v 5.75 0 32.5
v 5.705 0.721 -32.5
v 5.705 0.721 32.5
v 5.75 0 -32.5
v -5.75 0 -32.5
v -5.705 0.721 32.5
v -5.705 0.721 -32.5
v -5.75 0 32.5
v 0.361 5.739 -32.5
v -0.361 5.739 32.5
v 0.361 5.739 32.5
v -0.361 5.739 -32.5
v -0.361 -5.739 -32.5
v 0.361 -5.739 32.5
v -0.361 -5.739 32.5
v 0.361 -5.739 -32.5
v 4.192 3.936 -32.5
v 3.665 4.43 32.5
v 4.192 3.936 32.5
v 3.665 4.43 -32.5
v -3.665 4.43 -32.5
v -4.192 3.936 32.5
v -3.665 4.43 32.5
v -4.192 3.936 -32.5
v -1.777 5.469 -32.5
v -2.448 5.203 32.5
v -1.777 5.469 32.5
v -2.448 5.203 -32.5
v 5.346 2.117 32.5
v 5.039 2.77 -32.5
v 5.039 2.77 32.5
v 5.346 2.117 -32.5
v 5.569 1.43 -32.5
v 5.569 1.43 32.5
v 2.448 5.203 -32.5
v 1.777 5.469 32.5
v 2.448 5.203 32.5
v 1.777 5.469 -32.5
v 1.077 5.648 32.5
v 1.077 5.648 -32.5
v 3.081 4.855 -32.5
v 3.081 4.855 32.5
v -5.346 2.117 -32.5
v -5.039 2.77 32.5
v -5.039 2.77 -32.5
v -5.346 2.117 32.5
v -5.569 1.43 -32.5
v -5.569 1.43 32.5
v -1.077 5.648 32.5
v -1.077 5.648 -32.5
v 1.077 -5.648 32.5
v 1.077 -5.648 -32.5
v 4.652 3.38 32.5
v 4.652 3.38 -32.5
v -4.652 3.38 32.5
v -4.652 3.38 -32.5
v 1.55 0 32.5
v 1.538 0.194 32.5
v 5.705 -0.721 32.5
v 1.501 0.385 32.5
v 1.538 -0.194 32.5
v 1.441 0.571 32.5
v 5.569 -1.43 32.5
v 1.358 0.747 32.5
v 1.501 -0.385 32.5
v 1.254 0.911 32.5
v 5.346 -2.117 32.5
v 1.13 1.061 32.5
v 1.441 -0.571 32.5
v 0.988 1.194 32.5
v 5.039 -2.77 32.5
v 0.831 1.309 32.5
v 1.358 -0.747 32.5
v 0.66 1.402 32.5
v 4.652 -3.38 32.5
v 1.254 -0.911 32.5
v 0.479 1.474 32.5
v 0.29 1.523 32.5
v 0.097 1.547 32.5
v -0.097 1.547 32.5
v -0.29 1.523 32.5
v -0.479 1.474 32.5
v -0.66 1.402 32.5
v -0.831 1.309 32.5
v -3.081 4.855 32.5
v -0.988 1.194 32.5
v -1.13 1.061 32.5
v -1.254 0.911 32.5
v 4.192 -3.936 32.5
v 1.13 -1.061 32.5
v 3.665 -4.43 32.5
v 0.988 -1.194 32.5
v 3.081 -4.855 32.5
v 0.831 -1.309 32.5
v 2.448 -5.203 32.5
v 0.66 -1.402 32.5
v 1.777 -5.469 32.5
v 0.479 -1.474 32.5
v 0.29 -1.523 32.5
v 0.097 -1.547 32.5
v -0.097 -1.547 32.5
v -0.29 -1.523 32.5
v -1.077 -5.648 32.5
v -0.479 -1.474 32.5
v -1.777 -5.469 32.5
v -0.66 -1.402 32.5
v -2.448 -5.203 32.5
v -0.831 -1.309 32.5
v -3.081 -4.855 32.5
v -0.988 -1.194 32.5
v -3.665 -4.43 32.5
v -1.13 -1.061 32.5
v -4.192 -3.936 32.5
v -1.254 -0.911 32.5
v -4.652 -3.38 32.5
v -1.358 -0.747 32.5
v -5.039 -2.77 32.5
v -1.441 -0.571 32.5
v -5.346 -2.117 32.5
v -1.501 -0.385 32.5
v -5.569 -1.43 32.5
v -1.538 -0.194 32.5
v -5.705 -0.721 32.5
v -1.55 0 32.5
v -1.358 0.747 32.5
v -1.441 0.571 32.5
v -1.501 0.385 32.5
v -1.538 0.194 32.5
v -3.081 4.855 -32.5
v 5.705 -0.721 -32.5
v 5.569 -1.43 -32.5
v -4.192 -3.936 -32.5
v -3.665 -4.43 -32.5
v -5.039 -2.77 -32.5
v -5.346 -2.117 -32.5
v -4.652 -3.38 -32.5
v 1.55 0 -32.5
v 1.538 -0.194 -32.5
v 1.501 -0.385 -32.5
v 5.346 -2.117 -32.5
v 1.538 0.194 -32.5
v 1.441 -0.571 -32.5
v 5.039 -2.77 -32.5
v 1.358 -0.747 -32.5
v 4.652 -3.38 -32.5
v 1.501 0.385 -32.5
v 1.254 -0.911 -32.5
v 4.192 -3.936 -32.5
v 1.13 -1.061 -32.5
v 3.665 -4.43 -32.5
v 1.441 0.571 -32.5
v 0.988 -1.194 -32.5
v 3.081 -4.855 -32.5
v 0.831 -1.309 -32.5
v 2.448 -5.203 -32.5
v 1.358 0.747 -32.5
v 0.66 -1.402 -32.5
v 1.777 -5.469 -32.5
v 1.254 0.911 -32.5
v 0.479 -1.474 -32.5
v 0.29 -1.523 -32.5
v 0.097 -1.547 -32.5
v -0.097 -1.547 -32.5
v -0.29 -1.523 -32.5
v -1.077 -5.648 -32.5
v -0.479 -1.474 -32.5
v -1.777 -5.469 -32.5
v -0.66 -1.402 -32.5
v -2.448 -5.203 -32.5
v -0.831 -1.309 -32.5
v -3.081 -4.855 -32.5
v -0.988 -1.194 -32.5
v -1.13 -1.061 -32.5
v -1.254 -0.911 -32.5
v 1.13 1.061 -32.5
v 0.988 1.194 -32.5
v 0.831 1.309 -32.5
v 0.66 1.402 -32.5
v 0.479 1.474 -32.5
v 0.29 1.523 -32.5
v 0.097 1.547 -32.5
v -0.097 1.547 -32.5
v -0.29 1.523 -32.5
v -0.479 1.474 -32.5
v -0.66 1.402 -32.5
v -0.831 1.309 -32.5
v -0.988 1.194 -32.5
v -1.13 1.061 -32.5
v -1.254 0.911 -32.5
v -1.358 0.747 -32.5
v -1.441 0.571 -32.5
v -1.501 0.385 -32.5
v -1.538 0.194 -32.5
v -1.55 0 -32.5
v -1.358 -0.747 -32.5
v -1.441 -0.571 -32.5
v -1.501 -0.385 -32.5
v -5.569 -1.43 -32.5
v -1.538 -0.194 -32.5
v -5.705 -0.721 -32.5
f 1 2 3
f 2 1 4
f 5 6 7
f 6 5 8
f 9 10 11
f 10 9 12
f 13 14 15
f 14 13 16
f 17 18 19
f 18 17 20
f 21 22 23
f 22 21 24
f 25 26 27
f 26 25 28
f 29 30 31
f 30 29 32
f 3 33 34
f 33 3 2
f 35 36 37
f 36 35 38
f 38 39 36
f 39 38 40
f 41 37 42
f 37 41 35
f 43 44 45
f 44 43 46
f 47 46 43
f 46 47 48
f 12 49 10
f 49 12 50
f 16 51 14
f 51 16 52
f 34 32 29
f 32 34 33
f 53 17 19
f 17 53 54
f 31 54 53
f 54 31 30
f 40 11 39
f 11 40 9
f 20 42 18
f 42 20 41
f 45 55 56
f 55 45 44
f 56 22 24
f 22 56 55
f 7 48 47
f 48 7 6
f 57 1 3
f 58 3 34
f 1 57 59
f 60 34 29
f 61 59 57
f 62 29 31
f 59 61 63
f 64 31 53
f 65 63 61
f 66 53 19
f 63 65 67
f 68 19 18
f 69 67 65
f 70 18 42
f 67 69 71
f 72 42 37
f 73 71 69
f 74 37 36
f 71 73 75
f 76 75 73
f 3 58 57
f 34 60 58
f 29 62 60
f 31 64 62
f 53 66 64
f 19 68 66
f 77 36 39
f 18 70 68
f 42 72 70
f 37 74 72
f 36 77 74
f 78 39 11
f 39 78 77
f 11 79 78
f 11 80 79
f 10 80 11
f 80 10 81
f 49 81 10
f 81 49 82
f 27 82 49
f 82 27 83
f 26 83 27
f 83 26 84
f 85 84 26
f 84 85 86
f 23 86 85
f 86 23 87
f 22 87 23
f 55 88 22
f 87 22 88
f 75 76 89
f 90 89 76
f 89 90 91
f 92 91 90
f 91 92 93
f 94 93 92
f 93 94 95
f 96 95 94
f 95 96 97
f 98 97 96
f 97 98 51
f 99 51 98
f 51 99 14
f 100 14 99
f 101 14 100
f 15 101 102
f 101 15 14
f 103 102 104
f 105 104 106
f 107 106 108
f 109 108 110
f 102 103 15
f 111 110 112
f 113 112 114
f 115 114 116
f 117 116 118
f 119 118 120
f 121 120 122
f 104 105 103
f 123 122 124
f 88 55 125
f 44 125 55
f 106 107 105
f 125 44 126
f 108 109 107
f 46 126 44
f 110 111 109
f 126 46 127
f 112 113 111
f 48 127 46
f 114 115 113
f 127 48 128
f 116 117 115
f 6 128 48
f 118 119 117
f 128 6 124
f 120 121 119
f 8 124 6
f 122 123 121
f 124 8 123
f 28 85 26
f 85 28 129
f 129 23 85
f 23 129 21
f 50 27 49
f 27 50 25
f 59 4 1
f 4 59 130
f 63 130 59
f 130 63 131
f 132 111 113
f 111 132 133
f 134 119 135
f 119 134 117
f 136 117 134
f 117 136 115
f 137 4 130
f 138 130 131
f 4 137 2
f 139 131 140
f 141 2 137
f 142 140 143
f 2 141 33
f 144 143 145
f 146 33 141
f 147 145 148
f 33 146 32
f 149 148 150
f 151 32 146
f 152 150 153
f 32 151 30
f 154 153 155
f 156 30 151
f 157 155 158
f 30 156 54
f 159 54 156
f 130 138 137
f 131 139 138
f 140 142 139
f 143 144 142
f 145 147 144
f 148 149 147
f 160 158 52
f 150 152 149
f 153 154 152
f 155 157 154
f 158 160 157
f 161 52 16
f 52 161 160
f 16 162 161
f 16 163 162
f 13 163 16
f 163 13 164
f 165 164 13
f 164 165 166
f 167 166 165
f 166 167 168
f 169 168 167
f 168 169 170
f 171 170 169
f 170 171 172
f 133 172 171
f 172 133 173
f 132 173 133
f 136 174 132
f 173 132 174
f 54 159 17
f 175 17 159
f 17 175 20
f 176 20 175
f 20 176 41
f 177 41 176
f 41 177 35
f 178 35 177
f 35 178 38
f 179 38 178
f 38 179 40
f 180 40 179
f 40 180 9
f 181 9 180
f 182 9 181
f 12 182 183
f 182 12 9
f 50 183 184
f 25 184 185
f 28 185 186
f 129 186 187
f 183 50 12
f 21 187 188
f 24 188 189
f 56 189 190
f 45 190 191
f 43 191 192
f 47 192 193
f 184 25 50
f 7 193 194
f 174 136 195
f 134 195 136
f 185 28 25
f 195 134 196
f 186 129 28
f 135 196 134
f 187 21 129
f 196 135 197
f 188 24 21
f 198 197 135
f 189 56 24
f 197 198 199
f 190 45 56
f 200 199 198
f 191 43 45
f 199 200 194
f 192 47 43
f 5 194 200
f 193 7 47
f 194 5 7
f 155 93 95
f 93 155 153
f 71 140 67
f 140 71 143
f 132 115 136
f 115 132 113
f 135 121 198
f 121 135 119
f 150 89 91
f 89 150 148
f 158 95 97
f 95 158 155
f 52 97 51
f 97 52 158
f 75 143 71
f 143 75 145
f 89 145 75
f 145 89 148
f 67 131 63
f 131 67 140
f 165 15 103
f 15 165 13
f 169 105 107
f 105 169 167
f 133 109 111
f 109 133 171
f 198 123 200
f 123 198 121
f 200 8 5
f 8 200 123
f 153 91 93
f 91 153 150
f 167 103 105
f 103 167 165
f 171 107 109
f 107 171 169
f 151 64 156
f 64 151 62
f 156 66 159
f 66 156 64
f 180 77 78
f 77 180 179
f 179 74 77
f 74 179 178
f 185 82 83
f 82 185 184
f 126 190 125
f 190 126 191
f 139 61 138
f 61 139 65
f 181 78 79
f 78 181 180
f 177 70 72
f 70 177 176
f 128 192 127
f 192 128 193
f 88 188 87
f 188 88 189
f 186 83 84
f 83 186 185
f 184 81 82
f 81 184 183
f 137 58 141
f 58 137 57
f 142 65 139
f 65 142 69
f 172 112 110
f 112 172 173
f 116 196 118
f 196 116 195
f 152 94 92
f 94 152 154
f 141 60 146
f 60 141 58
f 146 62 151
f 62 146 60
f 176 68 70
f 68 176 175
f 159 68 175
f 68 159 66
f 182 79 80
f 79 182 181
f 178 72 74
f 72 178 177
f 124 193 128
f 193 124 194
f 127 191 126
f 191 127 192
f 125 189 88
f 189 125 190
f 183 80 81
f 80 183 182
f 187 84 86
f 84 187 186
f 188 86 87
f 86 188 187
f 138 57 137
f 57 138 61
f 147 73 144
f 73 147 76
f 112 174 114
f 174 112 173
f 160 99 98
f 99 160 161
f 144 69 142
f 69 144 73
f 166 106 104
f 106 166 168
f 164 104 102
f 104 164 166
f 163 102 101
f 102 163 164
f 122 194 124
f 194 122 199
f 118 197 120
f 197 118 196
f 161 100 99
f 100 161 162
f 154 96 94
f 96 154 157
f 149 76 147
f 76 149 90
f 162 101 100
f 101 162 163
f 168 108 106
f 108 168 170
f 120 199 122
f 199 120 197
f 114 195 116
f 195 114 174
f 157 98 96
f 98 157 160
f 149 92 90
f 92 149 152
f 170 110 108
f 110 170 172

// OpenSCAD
$fn = 50;


difference() {
	union() {
		translate(v = [0, 0, -32.5000000000]) {
			cylinder(h = 65, r = 5.7500000000);
		}
	}
	union() {
		translate(v = [0, 0, -100.0000000000]) {
			cylinder(h = 200, r = 1.5500000000);
		}
	}
}
